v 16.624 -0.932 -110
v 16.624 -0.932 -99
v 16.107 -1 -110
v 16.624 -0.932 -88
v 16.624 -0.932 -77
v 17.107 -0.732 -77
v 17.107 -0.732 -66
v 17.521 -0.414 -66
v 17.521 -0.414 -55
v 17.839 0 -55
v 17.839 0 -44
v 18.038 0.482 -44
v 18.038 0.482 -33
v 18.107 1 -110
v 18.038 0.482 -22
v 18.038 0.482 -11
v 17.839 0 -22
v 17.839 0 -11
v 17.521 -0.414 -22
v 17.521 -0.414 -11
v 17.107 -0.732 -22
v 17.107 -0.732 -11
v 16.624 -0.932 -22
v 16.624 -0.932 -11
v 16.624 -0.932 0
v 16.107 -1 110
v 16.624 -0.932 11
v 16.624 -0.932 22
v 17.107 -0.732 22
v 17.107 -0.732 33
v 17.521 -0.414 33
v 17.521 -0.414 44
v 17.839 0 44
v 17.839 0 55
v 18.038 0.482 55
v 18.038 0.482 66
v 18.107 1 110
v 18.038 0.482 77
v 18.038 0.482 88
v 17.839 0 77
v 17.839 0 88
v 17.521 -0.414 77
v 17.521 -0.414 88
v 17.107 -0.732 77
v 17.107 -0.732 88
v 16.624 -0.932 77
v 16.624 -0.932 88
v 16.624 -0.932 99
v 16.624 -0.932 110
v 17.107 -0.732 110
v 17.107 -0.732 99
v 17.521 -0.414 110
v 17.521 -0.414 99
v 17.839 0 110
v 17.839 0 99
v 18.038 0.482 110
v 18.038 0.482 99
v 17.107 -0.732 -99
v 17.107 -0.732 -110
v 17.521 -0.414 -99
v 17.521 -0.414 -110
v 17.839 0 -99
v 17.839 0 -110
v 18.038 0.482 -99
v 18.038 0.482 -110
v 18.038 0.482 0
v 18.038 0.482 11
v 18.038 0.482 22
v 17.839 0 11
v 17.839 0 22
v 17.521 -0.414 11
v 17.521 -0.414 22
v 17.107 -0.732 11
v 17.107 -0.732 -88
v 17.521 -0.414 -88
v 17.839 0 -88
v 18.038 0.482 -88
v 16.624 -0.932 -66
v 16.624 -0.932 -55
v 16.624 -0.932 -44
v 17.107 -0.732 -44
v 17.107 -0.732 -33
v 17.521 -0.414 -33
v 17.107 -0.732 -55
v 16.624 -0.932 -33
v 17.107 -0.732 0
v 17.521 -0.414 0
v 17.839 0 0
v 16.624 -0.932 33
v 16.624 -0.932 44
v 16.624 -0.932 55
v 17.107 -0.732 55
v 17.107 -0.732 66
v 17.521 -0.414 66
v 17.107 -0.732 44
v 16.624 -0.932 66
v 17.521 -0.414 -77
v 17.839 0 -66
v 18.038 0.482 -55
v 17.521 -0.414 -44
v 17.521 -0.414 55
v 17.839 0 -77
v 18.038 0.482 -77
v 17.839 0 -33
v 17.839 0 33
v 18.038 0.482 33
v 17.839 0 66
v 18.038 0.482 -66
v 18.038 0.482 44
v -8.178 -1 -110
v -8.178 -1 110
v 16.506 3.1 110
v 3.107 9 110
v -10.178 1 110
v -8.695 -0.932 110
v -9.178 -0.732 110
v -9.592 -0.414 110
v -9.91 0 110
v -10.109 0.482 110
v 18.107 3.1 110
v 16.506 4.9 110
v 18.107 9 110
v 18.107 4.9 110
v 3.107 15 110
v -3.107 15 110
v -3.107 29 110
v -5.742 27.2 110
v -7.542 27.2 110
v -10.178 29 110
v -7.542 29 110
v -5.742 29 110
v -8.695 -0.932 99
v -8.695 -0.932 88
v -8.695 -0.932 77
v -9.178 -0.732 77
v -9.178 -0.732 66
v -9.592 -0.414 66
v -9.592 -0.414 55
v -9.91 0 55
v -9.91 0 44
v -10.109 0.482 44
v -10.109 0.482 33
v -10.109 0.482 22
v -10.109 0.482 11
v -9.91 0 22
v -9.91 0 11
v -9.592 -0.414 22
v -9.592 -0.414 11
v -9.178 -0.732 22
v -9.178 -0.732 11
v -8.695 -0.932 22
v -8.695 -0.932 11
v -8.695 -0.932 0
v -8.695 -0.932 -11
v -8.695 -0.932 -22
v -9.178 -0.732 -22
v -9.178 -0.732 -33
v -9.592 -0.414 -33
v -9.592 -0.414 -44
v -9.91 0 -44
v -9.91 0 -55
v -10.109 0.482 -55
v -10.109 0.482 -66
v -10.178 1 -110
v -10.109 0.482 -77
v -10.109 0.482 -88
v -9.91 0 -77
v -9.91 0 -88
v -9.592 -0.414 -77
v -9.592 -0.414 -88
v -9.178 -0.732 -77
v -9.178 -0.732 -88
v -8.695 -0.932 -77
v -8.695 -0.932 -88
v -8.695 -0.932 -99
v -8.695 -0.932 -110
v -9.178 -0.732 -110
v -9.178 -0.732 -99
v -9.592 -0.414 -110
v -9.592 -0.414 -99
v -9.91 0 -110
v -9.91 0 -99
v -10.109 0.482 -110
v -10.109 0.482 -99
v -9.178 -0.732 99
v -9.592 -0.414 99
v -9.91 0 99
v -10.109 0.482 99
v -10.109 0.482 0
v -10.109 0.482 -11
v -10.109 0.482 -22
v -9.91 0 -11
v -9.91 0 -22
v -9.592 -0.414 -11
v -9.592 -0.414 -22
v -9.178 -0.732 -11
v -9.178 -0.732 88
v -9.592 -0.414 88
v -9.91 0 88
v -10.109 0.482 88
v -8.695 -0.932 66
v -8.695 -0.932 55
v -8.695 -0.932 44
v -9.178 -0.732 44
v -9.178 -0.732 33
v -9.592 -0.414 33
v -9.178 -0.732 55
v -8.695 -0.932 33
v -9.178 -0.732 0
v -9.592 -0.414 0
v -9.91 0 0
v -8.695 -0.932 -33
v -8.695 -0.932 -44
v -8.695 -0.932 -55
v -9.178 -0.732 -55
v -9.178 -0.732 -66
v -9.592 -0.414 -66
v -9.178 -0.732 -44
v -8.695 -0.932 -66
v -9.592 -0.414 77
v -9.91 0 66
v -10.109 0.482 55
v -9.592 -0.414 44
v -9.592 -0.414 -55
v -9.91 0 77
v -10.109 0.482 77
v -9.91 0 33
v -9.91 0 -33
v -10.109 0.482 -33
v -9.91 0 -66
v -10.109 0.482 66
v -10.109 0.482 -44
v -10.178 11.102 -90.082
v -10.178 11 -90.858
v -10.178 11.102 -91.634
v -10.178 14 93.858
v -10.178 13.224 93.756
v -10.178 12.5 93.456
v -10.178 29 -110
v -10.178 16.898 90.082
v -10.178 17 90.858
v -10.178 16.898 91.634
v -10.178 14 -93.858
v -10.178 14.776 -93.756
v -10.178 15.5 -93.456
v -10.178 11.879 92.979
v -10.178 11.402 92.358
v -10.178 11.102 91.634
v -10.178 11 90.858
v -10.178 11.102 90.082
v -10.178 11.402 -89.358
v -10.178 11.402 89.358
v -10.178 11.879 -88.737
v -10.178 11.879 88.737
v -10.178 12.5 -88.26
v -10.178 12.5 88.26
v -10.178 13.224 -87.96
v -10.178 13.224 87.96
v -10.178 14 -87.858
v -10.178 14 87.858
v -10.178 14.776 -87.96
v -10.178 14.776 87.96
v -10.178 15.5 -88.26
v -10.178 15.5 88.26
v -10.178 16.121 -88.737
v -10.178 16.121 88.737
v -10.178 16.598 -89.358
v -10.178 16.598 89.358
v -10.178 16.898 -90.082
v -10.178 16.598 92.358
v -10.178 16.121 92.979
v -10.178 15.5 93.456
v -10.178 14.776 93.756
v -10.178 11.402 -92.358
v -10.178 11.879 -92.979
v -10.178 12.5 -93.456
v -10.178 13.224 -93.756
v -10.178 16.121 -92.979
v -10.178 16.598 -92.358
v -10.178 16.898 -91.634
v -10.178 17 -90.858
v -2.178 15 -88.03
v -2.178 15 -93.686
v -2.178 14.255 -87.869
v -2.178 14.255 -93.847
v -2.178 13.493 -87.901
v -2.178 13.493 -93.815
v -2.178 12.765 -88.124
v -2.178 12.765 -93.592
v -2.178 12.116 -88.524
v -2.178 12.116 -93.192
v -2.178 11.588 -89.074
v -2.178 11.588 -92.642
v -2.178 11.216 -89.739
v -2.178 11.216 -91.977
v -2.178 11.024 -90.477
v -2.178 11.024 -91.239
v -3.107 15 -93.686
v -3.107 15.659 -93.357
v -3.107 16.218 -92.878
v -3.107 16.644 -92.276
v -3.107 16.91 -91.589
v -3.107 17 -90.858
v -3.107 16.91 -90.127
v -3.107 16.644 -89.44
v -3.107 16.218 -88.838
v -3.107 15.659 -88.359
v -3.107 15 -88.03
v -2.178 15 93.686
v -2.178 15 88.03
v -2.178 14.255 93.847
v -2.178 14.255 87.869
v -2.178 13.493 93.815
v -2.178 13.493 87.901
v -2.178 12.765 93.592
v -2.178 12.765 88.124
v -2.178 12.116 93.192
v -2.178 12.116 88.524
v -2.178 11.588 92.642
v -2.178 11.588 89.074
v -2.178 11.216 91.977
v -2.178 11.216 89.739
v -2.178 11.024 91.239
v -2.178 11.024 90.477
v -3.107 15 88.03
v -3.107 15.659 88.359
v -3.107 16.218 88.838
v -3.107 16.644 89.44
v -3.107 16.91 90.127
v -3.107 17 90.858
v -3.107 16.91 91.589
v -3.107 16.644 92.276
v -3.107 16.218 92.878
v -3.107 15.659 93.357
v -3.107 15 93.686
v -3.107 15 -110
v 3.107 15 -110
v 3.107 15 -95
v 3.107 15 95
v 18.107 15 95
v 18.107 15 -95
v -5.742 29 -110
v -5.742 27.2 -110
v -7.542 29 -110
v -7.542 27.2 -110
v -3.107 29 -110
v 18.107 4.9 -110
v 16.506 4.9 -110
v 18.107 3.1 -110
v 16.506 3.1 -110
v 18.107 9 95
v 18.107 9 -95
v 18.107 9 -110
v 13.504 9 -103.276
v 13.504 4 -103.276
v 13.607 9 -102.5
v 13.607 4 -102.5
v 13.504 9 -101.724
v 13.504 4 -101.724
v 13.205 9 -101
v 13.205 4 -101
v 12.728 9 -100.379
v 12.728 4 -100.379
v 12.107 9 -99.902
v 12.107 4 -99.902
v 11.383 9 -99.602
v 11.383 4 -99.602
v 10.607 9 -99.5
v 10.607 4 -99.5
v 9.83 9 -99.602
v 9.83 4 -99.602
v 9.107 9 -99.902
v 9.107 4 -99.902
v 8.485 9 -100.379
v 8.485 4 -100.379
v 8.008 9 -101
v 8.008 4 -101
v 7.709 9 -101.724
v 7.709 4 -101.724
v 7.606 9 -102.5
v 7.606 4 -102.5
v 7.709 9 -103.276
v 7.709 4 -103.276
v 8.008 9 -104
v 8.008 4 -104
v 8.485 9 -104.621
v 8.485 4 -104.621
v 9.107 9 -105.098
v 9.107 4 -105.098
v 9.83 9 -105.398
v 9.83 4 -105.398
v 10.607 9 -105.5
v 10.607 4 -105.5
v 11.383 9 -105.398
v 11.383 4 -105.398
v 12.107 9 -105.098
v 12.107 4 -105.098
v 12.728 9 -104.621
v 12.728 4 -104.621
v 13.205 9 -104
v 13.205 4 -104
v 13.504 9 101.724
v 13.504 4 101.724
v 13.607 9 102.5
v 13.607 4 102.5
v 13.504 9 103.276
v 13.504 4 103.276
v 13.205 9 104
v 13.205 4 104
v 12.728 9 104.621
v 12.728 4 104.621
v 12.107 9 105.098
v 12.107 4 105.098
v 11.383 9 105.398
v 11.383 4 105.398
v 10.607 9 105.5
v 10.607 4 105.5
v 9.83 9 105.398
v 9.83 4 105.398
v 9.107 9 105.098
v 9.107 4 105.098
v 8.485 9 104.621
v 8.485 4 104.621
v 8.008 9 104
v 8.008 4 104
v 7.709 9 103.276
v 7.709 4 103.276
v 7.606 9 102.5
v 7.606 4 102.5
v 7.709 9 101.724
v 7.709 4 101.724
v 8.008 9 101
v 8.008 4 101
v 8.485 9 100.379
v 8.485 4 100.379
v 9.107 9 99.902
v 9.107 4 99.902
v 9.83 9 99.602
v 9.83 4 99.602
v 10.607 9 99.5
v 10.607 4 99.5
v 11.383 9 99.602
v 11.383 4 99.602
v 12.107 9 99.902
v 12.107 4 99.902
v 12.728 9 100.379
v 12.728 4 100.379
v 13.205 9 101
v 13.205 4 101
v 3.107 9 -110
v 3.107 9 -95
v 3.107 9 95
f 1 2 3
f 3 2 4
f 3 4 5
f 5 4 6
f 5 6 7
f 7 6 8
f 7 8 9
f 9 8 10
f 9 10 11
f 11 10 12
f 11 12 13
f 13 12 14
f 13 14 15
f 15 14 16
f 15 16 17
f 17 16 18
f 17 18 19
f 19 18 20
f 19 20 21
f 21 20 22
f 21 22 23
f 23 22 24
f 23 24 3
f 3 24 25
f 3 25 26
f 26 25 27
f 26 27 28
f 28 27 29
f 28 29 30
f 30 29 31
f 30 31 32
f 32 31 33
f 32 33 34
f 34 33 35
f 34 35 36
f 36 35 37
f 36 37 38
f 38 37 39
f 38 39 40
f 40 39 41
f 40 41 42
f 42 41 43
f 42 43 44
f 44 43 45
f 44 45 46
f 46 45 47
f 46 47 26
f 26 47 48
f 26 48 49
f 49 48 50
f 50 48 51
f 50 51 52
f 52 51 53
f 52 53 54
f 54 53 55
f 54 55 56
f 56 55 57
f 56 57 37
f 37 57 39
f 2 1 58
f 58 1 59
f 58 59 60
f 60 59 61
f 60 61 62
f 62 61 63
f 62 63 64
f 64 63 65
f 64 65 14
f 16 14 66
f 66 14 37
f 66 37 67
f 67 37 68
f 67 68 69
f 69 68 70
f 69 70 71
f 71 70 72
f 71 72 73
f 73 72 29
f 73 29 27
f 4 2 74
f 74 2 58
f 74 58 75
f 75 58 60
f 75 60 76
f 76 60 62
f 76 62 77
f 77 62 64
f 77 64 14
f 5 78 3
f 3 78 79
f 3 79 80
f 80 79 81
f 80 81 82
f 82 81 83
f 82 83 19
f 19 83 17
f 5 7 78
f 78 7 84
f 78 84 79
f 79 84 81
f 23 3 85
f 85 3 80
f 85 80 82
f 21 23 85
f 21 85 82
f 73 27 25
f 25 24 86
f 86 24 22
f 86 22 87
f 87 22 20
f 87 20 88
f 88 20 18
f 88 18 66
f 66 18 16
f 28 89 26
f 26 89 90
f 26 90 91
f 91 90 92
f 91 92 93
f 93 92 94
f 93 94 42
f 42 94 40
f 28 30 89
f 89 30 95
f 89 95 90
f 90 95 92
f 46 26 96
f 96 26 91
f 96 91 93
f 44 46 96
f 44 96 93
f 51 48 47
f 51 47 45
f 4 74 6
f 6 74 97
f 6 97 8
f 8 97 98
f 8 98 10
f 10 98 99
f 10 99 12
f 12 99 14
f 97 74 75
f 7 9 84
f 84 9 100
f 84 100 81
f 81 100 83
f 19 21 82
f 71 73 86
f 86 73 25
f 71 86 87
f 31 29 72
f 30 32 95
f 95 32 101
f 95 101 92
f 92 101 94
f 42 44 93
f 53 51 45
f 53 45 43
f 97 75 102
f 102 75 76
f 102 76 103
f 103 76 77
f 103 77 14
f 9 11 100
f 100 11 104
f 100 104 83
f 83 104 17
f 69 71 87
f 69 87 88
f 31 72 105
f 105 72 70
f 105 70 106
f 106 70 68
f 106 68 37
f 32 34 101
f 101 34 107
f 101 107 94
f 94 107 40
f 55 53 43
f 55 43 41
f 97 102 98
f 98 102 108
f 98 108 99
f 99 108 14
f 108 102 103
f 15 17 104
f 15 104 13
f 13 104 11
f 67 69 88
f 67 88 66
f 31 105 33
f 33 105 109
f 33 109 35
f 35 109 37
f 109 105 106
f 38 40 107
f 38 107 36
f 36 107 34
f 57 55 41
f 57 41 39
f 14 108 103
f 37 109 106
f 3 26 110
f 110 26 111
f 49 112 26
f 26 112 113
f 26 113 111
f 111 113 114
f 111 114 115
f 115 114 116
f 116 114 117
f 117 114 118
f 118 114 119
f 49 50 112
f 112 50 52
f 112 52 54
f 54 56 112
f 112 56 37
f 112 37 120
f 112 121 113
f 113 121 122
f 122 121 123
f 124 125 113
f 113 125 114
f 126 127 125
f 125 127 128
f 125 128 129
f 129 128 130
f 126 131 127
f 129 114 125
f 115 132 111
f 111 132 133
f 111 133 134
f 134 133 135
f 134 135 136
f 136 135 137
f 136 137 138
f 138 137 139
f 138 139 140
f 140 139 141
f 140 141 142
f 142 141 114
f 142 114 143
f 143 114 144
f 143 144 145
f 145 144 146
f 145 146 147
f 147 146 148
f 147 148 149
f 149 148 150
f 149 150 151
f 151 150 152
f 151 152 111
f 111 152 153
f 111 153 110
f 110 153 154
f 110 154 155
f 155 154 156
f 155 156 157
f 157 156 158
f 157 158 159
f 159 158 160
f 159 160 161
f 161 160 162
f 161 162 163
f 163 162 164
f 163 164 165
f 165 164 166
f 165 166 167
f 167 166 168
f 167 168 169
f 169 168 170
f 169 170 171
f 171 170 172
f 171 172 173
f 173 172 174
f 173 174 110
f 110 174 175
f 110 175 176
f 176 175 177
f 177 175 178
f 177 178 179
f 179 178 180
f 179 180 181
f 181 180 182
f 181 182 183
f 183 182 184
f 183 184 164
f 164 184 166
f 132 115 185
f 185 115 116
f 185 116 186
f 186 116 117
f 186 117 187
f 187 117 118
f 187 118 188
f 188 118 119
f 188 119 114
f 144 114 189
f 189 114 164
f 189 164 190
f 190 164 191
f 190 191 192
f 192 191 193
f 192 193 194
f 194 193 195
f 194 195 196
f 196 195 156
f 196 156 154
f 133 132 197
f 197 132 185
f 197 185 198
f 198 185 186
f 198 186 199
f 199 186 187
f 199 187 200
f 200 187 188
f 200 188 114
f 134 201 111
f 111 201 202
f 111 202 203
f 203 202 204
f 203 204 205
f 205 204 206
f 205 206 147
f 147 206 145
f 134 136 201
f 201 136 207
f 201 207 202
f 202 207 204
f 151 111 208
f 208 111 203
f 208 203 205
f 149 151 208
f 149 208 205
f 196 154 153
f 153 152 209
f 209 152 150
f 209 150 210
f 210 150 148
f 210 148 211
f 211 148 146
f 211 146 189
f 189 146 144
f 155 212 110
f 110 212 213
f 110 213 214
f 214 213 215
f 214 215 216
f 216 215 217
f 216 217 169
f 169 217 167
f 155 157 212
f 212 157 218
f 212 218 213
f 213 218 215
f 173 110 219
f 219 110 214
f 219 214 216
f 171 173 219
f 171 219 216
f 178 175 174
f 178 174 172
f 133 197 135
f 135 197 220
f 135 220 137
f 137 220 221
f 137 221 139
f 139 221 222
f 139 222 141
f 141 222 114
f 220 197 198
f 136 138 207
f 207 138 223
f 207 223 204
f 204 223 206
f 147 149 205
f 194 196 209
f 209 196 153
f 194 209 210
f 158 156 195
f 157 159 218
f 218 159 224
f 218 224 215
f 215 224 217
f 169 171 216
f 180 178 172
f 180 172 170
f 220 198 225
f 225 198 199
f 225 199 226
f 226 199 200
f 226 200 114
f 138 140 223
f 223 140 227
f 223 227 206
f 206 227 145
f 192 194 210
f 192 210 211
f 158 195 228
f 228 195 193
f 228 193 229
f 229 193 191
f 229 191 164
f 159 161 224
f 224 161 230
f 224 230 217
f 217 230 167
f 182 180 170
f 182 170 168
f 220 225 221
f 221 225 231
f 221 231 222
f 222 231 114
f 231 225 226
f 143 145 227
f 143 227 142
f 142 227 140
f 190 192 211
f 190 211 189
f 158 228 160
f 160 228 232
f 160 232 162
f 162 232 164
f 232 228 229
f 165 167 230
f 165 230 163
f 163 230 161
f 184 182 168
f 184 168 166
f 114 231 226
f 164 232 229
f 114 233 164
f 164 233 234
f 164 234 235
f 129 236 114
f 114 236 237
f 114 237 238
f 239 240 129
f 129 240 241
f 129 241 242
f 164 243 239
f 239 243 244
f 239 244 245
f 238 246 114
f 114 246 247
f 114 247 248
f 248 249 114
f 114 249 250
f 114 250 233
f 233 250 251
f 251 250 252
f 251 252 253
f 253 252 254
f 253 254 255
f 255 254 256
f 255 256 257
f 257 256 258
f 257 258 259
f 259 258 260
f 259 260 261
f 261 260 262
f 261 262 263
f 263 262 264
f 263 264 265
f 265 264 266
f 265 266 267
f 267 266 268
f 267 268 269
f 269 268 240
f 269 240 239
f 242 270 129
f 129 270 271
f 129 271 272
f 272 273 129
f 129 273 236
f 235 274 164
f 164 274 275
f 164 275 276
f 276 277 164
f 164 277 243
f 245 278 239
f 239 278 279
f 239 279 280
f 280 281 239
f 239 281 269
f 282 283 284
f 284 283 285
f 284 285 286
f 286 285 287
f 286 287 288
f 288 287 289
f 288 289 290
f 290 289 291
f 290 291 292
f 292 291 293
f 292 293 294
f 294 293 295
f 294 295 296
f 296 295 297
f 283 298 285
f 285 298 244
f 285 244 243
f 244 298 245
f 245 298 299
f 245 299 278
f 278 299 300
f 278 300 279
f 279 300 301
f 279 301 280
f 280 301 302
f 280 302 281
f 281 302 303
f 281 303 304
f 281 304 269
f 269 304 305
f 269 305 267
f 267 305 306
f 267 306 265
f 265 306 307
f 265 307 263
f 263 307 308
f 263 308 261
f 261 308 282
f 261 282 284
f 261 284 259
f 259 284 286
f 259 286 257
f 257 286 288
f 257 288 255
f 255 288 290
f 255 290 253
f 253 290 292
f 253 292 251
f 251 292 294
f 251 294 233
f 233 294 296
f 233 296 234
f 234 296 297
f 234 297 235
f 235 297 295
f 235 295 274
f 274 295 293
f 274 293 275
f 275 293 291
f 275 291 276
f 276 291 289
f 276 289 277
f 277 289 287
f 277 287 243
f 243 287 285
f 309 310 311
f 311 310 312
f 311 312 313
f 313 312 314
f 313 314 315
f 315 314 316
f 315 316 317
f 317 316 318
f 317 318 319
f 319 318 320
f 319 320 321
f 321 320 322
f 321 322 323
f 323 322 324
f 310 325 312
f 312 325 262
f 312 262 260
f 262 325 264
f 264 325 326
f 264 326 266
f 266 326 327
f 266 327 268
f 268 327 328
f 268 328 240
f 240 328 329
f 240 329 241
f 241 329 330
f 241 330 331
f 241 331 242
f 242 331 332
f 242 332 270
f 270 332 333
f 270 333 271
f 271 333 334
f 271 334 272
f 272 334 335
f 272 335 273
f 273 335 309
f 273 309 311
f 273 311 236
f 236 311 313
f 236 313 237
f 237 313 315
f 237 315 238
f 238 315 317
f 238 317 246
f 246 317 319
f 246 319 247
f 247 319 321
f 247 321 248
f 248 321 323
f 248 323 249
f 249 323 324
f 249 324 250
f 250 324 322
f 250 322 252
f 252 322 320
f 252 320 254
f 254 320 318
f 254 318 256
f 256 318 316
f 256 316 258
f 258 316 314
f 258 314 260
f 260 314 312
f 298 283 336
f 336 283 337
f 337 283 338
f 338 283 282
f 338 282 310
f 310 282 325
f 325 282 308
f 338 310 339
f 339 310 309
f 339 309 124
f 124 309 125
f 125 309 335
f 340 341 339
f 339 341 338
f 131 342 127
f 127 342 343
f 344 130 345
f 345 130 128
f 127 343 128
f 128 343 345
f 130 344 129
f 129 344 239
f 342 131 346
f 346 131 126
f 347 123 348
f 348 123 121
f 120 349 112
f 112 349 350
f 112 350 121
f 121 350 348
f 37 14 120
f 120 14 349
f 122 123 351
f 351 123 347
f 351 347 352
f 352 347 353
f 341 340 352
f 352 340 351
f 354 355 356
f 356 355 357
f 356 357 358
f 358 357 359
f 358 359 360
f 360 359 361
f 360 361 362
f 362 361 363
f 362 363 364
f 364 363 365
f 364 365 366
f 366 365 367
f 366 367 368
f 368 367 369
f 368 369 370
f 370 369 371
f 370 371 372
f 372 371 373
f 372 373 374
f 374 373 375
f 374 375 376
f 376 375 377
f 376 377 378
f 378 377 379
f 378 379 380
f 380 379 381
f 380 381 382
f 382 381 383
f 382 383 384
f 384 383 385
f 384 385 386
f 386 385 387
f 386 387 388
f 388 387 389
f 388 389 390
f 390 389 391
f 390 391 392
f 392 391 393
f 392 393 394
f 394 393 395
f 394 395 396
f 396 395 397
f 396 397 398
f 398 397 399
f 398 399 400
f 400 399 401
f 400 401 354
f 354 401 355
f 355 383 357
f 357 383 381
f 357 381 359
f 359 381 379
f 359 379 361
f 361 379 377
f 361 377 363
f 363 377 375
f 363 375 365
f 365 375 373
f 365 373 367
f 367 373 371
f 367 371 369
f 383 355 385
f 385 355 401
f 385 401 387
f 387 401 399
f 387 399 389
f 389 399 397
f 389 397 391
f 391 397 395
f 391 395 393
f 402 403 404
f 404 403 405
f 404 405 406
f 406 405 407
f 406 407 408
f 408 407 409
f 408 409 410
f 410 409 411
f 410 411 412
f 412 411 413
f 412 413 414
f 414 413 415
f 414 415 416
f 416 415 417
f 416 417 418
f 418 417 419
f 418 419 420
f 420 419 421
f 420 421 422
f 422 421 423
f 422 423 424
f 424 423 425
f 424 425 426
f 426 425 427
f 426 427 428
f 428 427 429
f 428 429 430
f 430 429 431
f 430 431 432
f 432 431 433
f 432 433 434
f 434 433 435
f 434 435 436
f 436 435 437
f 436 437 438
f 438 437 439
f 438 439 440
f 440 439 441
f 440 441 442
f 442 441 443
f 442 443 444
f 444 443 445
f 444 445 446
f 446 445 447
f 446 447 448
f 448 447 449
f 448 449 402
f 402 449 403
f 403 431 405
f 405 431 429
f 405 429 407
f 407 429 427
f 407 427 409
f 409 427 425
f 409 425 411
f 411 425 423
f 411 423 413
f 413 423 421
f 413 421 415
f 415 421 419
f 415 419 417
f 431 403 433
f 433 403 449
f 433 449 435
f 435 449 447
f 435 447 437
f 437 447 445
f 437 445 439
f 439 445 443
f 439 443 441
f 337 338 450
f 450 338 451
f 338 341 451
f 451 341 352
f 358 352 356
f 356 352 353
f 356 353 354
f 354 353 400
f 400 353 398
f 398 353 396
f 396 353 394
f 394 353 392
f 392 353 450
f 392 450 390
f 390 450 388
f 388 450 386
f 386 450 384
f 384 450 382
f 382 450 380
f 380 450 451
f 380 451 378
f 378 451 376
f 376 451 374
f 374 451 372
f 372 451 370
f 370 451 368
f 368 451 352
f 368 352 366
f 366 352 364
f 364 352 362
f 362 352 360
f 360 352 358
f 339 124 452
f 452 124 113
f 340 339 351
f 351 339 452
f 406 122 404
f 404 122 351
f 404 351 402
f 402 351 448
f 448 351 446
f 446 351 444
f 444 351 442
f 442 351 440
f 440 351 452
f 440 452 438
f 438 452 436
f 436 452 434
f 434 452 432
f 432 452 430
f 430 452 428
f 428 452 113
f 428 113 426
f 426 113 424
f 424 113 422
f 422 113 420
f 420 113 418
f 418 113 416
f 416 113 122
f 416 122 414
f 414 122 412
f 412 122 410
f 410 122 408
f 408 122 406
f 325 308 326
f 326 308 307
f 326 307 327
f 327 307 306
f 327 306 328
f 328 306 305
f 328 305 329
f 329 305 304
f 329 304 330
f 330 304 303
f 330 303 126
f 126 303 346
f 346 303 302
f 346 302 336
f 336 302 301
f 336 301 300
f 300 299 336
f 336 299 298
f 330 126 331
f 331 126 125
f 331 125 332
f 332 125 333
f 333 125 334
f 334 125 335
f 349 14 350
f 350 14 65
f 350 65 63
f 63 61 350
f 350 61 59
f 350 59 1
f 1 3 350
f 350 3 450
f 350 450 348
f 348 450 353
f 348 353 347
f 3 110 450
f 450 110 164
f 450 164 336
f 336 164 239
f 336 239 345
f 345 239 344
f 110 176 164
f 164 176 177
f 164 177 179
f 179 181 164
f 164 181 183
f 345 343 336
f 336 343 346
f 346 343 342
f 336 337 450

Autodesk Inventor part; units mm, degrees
ref_plane "YZ Plane" through (0, 0, 0) normal (1, 0, 0) x (0, 1, 0)
ref_plane "XZ Plane" through (0, 0, 0) normal (0, 1, 0) x (-1, 0, 0)
ref_plane "XY Plane" through (0, 0, 0) normal (0, 0, 1) x (1, 0, 0)
sketch "Sketch1" plane through (0, 0, 0) normal (0, 1, 0) x (-1, 0, 0)
  line L0 (18.1065, 110) -> (-18.1065, 110)
  line L1 (-18.1065, 110) -> (-18.1065, -110)
  line L2 (-18.1065, -110) -> (18.1065, -110)
  line L3 (18.1065, -110) -> (18.1065, 110)
  point P0 (0, 0)
  point P1 (0, 110)
  point P2 (18.1065, 0)
  dimension "d0" = 220
  dimension "d1" = 36.213
extrude "Extrusion1" add sketch "Sketch1" along normal blind 15
sketch "Sketch2" plane through (0, 15, 0) normal (0, 1, 0) x (1, 0, 0)
  line L0 (-18.1065, 110) -> (-18.1065, -110) projected
  line L1 (18.1065, 110) -> (-18.1065, 110) projected
  line L2 (-18.1065, -110) -> (-3.1065, -110)
  line L3 (-3.1065, -110) -> (-3.1065, 110)
  line L4 (-3.1065, 110) -> (-18.1065, 110)
  line L5 (-18.1065, 110) -> (-18.1065, -110)
  point P0 (0, 0)
  dimension "d4" = 15
extrude "Extrusion2" add sketch "Sketch2" along normal blind 14
sketch "Sketch3" plane through (0, 15, 0) normal (0, 1, 0) x (1, 0, 0)
  line L0 (-18.1065, -110) -> (18.1065, -110) projected
  line L1 (18.1065, -110) -> (3.1065, -110)
  line L2 (3.1065, -110) -> (3.1065, -95)
  line L3 (3.1065, -95) -> (18.1065, -95)
  line L4 (18.1065, -95) -> (18.1065, -110)
  point P0 (0, 0)
  dimension "d7" = 15
  dimension "d8" = 15
extrude "Extrusion3" cut sketch "Sketch3" against normal blind 6
mirror "Mirror1" about plane through (0, 0, 0) normal (0, 0, 1) of "Extrusion3"
sketch "Sketch4" plane through (0, 9, 0) normal (0, 1, 0) x (1, 0, 0)
  line L0 (18.1065, -95) -> (18.1065, -110) projected
  line L1 (18.1065, -110) -> (3.1065, -110) projected
  point P0 (0, 0)
  point P1 (10.6065, -102.5)
  point P2 (18.1065, -102.5)
  dimension "d11" = 7.5
  dimension "d12" = 7.5
hole "Hole1" at (10.6065, 9, 102.5) direction (0, -1, 0) diameter 6 depth 5
mirror "Mirror2" about plane through (0, 0, 0) normal (0, 0, 1) of "Hole1"
sketch "Sketch5" plane through (-18.1065, 0, 110) normal (0, 0, 1) x (1, 0, 0)
  point P0 (18.1065, 0)
move faces "Move2" translate (7.929, 0, 0) faces at (-18.1065, 9.6667, -36.6667)
move faces "Move3" translate (0, -1, 0) faces at (8.6785, 0, 36.6667)
sketch "Sketch6" plane through (18.1065, 9, 95) normal (1, 0, 0) x (0, 0, -1)
  line L0 (205, -10) -> (205, 0) projected
  line L1 (-15, -10) -> (-15, 0) projected
  line L2 (205, -5.9) -> (-15, -5.9)
  line L3 (205, -5) -> (-15, -5)
  line L4 (205, -4.1) -> (-15, -4.1)
  line L5 (205, -4.1) -> (205, -5.9)
  line L6 (205, -10) -> (205, 20) projected
  line L7 (-15, -4.1) -> (-15, -5.9)
  point P0 (95, -9)
  dimension "d29" = 1.8
extrude "Extrusion4" cut sketch "Sketch6" against normal blind 1.6
sketch "Sketch7" plane through (0, 29, 0) normal (0, 1, 0) x (1, 0, 0)
  line L0 (-6.642, 113.6406) -> (-6.642, -120.3961) construction
  line L1 (-3.1065, 110) -> (-10.1775, 110) projected
  line L2 (18.1065, 110) -> (-10.1775, 110) projected
  line L3 (-5.742, 110) -> (-5.742, -110)
  line L4 (-10.1775, -110) -> (-3.1065, -110) projected
  line L5 (-7.542, 110) -> (-7.542, -110)
  line L6 (-5.742, 110) -> (-7.542, 110)
  line L7 (-5.742, -110) -> (-7.542, -110)
  point P0 (0, 0)
  point P1 (-6.642, 110)
  point P2 (-7.542, 110)
  point P3 (-7.542, -110)
  point P4 (-5.742, 110)
  dimension "d35" = 1.8
extrude "Extrusion5" cut sketch "Sketch7" against normal blind 1.8
sketch "Sketch16" plane through (-10.1775, 29, -110) normal (-1, 0, 0) x (0, 0, 1)
  line L0 (0, -30) -> (0, 0) projected
  line L1 (220, -30) -> (220, 0) projected
  line L2 (0, 0) -> (220, 0) projected
  point P0 (110, -29)
  point P1 (19.142, -15)
  point P2 (200.858, -15)
  dimension "d75" = 181.716
  dimension "d76" = 220
  dimension "d77" = 19.142
  dimension "d78" = 30
  dimension "d79" = 15
hole "Hole6" at (-10.1775, 14, 90.858) at (-10.1775, 14, -90.858) direction (1, 0, 0) diameter 6 depth 8
fillet "Fillet1" radius 2 1 edges at (-10.1775, -1, 0)
fillet "Fillet2" radius 2 1 edges at (18.1065, -1, 0)
equation "\"d8\" = d7"
equation "\"d11\" = 0.5 * d7"
equation "\"d12\" = 0.5 * d8"
equation "\"d77\" = -0.5 * d75 + 0.5 * d76"
equation "\"d79\" = 0.5 * d78"
properties part number "top_edge" material "ABS Plastic"
